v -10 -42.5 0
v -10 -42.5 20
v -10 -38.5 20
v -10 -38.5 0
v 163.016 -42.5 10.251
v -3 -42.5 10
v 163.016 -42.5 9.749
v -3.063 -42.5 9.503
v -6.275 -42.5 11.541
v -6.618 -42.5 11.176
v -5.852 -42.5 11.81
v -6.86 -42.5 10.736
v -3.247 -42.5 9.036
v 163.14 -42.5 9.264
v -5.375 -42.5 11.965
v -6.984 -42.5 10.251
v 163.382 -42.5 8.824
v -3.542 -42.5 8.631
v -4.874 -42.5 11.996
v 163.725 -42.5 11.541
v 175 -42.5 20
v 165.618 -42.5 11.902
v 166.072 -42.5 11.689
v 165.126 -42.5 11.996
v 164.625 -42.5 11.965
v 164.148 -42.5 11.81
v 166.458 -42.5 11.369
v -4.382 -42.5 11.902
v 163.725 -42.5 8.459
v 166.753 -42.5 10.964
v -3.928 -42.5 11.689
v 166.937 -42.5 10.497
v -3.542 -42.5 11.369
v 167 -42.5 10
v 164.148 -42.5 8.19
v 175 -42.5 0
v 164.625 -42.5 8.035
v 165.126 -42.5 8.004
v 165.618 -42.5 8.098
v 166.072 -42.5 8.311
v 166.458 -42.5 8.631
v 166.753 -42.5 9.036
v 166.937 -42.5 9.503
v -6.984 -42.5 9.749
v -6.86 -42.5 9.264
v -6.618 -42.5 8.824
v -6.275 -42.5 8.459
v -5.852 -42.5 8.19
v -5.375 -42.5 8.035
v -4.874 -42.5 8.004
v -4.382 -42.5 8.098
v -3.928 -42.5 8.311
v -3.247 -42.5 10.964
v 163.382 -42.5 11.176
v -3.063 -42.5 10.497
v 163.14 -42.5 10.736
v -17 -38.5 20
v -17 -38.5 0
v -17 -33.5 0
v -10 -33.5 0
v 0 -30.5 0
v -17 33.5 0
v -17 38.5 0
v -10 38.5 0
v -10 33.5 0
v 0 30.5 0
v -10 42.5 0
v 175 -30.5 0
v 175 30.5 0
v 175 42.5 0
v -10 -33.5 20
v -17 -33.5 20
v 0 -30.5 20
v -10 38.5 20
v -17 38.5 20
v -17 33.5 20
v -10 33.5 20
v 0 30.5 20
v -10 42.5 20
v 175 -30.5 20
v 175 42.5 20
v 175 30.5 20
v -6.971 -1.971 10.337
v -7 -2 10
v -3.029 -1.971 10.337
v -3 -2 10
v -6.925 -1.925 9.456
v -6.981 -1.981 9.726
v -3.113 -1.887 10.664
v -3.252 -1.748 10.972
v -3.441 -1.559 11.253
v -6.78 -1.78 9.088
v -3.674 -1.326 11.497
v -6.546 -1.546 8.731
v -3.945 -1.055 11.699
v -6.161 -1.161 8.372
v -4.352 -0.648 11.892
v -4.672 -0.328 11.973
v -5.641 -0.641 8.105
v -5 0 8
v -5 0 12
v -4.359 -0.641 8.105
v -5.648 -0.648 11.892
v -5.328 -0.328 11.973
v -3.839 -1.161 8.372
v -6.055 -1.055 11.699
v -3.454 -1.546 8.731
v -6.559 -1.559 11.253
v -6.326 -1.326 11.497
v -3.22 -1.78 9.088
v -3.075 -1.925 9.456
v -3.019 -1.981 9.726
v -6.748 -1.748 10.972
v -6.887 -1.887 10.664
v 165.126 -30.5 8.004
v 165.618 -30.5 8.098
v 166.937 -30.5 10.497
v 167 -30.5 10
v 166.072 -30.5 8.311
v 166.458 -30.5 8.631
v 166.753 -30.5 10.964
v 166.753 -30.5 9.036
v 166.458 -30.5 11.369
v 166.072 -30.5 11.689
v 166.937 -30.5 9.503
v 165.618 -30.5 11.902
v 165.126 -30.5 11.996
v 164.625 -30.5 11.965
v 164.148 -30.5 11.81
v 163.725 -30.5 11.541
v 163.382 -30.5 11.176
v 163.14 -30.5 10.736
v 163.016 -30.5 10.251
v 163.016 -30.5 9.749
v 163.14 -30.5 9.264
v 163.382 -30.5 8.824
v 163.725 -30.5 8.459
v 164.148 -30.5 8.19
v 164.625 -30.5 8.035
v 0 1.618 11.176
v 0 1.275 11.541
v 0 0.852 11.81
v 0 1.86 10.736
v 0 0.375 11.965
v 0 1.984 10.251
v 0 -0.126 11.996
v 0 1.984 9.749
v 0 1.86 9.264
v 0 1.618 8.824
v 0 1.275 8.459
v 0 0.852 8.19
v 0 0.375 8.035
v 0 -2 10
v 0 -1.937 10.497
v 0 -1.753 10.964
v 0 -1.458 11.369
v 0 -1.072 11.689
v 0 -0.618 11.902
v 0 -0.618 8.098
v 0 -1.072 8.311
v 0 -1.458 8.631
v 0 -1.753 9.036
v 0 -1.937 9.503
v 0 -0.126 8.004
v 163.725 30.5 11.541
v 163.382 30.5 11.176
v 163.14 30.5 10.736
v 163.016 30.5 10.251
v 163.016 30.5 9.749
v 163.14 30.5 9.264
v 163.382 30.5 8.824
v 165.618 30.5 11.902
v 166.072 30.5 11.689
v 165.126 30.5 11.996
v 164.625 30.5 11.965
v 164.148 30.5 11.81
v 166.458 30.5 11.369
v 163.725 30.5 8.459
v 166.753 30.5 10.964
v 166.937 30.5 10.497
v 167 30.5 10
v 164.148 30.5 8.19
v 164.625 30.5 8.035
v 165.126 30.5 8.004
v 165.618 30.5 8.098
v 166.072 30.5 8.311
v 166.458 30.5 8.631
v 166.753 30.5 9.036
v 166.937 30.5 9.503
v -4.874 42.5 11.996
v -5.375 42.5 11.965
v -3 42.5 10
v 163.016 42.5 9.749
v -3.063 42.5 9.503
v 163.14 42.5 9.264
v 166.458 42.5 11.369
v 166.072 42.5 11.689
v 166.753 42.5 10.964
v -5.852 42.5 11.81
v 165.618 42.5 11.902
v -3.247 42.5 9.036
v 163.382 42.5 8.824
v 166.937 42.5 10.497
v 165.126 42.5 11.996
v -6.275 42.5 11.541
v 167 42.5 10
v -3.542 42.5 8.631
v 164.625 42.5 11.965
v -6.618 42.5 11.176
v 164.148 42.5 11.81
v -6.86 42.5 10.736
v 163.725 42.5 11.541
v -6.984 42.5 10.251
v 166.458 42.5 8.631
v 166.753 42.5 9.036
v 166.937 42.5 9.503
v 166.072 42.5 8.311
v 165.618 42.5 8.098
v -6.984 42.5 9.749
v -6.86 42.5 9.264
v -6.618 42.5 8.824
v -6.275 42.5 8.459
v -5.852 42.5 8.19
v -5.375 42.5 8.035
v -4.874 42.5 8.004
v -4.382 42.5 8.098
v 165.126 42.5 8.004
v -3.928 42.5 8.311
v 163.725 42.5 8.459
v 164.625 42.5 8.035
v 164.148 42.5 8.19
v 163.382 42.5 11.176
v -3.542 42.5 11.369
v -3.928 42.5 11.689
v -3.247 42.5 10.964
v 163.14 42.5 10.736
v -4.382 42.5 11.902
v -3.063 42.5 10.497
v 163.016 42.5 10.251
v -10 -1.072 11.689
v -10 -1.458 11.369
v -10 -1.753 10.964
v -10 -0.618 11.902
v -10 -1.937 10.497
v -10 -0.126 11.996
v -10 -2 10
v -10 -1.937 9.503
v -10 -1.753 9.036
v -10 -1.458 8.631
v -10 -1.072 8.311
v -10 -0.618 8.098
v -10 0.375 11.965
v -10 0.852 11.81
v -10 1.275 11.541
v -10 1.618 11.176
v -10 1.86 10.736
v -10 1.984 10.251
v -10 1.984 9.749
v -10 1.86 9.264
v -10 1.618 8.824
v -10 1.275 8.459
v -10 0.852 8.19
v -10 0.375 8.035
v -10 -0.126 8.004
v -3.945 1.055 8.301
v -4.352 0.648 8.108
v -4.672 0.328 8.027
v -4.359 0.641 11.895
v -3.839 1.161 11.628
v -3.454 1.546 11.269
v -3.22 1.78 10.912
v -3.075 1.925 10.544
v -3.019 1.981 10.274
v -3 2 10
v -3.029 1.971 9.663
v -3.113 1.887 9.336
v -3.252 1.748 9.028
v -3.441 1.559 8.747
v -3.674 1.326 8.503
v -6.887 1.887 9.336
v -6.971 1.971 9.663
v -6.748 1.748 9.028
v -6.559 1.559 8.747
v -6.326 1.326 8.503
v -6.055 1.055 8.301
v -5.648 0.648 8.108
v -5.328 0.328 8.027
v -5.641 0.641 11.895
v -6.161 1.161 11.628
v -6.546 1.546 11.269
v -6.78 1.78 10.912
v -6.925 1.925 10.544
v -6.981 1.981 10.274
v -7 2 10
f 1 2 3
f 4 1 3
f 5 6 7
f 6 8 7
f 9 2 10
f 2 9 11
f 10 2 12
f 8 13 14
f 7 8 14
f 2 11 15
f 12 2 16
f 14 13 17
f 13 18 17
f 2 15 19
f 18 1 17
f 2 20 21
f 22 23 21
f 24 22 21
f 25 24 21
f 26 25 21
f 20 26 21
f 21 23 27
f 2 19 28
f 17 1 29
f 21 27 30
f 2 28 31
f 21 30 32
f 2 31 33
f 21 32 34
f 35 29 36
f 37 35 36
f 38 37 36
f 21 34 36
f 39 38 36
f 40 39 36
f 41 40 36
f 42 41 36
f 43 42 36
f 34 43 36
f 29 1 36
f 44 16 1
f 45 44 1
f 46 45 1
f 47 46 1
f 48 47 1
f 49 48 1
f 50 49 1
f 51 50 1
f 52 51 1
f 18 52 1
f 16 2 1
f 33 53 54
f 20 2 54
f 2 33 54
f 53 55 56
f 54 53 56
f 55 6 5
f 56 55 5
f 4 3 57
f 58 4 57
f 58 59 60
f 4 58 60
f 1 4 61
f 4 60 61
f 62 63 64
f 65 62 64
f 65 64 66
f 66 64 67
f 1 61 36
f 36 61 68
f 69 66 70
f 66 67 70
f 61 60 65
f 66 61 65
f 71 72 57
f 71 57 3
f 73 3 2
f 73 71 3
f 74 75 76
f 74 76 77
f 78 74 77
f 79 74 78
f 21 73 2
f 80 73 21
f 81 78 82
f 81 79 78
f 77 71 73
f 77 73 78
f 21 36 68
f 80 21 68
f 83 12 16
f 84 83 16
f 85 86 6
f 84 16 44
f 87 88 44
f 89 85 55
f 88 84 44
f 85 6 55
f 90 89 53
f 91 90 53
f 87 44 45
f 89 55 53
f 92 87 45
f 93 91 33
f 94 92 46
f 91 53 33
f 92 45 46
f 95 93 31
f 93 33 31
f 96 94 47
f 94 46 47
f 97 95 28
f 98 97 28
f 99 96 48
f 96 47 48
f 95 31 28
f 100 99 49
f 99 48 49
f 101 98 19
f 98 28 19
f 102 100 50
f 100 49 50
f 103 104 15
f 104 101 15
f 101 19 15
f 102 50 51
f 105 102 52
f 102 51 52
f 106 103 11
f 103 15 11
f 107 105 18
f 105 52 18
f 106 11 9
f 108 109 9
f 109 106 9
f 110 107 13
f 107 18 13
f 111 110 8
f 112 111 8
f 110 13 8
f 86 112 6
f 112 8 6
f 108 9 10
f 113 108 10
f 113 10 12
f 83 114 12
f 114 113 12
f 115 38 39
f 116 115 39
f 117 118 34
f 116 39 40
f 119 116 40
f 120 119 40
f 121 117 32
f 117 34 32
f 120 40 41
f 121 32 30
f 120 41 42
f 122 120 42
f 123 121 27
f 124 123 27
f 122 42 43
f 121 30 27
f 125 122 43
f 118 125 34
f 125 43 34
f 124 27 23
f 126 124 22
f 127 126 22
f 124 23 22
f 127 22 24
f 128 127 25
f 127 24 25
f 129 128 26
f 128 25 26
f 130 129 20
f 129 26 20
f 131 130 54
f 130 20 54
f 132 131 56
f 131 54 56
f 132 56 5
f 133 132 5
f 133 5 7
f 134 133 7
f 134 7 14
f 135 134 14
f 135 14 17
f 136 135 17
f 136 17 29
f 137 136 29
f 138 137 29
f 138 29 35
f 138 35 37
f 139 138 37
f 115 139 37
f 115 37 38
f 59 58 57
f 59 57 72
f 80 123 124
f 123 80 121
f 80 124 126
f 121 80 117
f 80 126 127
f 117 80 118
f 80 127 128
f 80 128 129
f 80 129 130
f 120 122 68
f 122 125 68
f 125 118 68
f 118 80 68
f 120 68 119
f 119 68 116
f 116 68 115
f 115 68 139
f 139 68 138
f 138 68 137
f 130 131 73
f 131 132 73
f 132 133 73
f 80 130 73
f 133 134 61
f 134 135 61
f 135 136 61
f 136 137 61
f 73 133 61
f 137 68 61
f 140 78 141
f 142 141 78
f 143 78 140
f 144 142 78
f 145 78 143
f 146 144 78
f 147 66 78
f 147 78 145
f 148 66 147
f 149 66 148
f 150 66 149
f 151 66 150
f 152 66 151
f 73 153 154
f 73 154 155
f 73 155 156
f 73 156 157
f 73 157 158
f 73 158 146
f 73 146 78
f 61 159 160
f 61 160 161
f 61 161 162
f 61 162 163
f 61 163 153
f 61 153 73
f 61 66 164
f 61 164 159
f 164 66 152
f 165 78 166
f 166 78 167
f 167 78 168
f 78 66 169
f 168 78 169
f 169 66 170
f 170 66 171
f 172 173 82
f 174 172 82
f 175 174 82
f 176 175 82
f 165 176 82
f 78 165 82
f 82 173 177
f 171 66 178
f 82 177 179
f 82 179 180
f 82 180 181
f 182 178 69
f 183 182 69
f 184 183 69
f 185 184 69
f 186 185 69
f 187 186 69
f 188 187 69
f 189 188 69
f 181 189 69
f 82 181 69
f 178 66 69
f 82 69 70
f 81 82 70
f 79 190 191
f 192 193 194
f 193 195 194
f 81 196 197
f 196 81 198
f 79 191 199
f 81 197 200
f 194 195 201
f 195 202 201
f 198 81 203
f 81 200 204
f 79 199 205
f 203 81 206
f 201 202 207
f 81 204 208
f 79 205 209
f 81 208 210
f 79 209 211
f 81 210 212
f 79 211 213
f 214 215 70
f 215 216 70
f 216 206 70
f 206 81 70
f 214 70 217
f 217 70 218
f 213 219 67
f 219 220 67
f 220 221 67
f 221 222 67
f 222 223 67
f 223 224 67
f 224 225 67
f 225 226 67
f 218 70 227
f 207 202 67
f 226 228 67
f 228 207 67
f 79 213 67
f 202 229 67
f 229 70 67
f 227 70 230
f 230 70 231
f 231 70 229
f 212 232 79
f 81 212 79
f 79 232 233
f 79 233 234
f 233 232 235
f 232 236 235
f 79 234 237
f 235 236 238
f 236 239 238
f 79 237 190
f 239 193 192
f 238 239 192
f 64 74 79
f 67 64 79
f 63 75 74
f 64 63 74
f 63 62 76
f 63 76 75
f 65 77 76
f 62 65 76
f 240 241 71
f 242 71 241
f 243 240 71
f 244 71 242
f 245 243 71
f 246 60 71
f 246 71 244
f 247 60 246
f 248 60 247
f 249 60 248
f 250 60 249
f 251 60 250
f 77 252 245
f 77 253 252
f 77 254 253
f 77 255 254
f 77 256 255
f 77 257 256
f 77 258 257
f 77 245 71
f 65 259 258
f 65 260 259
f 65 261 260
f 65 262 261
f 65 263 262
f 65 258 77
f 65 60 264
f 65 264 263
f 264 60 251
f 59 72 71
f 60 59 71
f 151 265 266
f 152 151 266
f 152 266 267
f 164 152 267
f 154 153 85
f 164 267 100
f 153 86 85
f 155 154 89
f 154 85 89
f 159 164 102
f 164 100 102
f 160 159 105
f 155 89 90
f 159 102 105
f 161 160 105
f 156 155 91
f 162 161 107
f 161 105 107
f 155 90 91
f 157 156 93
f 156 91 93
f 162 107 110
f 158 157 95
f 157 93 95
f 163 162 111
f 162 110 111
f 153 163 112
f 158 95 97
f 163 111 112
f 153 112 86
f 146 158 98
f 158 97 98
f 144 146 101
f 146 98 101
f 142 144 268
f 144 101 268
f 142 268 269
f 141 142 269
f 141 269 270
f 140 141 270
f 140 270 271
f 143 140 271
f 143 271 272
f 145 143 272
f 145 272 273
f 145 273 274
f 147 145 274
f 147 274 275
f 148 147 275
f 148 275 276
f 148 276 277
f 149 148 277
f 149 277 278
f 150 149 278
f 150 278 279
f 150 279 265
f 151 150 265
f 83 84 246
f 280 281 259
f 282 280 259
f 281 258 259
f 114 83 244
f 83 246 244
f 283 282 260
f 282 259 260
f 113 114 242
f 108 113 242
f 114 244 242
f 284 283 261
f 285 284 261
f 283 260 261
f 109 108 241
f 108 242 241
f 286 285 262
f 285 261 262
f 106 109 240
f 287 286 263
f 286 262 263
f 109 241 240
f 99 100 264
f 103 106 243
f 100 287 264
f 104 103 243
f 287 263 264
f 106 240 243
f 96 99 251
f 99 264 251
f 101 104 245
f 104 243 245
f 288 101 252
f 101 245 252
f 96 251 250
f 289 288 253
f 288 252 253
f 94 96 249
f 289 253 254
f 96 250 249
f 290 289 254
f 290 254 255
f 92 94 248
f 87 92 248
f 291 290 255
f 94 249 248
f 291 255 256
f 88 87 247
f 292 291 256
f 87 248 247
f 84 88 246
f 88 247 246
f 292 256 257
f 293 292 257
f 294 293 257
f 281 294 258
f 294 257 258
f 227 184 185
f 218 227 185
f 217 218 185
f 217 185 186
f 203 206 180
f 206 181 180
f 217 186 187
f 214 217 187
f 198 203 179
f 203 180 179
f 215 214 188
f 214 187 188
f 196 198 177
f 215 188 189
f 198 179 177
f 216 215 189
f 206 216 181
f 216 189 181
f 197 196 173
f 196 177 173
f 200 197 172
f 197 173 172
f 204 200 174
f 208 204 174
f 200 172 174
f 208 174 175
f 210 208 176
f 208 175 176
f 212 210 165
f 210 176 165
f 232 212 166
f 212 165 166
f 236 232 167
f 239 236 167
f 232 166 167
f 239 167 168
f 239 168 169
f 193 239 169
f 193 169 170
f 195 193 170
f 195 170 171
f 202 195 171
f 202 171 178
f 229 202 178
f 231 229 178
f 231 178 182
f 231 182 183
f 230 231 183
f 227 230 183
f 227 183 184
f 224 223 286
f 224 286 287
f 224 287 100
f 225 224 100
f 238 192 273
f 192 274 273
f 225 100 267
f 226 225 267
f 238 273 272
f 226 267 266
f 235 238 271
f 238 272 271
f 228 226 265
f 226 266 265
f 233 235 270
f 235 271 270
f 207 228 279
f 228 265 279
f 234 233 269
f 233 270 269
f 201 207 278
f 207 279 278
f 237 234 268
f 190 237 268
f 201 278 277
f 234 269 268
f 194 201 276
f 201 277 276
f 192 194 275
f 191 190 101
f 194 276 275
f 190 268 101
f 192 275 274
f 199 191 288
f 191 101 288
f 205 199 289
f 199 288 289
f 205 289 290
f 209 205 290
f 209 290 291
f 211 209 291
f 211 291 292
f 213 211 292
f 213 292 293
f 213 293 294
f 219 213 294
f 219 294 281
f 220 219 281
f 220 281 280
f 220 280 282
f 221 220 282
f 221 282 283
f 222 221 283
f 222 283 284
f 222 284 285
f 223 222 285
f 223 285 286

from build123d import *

# Parameters (mm, degrees)
PAD_DEPTH       = 20
SKETCH004_R     = 2
POCKET002_DEPTH = 185.001
SKETCH005_R     = 2
POCKET003_DEPTH = 85.001


with BuildPart() as part:
    # Sketch → Pad (new body)
    with BuildSketch(Plane.XY):
        Polygon((-10, -42.5), (175, -42.5), (175, -30.5), (0, -30.5), (0, 30.5), (175, 30.5), (175, 42.5), (-10, 42.5), (-10, 38.5), (-17, 38.5), (-17, 33.5), (-10, 33.5), (-10, -33.5), (-17, -33.5), (-17, -38.5), (-10, -38.5), align=None)
    extrude(amount=PAD_DEPTH)

    # Sketch004 → Pocket002 (cut, through all)
    with BuildSketch(Plane(origin=(-10, 0, 0), x_dir=(0, -1, 0), z_dir=(-1, 0, 0))):
        with Locations((0, 10)):
            Circle(SKETCH004_R)
    extrude(amount=-POCKET002_DEPTH, mode=Mode.SUBTRACT)

    # Sketch005 → Pocket003 (cut, through all)
    with BuildSketch(Plane.XZ.offset(42.5)):
        with Locations((-5, 10)):
            Circle(SKETCH005_R)
        with Locations((165, 10)):
            Circle(SKETCH005_R)
    extrude(amount=-POCKET003_DEPTH, mode=Mode.SUBTRACT)


solid = part.part
